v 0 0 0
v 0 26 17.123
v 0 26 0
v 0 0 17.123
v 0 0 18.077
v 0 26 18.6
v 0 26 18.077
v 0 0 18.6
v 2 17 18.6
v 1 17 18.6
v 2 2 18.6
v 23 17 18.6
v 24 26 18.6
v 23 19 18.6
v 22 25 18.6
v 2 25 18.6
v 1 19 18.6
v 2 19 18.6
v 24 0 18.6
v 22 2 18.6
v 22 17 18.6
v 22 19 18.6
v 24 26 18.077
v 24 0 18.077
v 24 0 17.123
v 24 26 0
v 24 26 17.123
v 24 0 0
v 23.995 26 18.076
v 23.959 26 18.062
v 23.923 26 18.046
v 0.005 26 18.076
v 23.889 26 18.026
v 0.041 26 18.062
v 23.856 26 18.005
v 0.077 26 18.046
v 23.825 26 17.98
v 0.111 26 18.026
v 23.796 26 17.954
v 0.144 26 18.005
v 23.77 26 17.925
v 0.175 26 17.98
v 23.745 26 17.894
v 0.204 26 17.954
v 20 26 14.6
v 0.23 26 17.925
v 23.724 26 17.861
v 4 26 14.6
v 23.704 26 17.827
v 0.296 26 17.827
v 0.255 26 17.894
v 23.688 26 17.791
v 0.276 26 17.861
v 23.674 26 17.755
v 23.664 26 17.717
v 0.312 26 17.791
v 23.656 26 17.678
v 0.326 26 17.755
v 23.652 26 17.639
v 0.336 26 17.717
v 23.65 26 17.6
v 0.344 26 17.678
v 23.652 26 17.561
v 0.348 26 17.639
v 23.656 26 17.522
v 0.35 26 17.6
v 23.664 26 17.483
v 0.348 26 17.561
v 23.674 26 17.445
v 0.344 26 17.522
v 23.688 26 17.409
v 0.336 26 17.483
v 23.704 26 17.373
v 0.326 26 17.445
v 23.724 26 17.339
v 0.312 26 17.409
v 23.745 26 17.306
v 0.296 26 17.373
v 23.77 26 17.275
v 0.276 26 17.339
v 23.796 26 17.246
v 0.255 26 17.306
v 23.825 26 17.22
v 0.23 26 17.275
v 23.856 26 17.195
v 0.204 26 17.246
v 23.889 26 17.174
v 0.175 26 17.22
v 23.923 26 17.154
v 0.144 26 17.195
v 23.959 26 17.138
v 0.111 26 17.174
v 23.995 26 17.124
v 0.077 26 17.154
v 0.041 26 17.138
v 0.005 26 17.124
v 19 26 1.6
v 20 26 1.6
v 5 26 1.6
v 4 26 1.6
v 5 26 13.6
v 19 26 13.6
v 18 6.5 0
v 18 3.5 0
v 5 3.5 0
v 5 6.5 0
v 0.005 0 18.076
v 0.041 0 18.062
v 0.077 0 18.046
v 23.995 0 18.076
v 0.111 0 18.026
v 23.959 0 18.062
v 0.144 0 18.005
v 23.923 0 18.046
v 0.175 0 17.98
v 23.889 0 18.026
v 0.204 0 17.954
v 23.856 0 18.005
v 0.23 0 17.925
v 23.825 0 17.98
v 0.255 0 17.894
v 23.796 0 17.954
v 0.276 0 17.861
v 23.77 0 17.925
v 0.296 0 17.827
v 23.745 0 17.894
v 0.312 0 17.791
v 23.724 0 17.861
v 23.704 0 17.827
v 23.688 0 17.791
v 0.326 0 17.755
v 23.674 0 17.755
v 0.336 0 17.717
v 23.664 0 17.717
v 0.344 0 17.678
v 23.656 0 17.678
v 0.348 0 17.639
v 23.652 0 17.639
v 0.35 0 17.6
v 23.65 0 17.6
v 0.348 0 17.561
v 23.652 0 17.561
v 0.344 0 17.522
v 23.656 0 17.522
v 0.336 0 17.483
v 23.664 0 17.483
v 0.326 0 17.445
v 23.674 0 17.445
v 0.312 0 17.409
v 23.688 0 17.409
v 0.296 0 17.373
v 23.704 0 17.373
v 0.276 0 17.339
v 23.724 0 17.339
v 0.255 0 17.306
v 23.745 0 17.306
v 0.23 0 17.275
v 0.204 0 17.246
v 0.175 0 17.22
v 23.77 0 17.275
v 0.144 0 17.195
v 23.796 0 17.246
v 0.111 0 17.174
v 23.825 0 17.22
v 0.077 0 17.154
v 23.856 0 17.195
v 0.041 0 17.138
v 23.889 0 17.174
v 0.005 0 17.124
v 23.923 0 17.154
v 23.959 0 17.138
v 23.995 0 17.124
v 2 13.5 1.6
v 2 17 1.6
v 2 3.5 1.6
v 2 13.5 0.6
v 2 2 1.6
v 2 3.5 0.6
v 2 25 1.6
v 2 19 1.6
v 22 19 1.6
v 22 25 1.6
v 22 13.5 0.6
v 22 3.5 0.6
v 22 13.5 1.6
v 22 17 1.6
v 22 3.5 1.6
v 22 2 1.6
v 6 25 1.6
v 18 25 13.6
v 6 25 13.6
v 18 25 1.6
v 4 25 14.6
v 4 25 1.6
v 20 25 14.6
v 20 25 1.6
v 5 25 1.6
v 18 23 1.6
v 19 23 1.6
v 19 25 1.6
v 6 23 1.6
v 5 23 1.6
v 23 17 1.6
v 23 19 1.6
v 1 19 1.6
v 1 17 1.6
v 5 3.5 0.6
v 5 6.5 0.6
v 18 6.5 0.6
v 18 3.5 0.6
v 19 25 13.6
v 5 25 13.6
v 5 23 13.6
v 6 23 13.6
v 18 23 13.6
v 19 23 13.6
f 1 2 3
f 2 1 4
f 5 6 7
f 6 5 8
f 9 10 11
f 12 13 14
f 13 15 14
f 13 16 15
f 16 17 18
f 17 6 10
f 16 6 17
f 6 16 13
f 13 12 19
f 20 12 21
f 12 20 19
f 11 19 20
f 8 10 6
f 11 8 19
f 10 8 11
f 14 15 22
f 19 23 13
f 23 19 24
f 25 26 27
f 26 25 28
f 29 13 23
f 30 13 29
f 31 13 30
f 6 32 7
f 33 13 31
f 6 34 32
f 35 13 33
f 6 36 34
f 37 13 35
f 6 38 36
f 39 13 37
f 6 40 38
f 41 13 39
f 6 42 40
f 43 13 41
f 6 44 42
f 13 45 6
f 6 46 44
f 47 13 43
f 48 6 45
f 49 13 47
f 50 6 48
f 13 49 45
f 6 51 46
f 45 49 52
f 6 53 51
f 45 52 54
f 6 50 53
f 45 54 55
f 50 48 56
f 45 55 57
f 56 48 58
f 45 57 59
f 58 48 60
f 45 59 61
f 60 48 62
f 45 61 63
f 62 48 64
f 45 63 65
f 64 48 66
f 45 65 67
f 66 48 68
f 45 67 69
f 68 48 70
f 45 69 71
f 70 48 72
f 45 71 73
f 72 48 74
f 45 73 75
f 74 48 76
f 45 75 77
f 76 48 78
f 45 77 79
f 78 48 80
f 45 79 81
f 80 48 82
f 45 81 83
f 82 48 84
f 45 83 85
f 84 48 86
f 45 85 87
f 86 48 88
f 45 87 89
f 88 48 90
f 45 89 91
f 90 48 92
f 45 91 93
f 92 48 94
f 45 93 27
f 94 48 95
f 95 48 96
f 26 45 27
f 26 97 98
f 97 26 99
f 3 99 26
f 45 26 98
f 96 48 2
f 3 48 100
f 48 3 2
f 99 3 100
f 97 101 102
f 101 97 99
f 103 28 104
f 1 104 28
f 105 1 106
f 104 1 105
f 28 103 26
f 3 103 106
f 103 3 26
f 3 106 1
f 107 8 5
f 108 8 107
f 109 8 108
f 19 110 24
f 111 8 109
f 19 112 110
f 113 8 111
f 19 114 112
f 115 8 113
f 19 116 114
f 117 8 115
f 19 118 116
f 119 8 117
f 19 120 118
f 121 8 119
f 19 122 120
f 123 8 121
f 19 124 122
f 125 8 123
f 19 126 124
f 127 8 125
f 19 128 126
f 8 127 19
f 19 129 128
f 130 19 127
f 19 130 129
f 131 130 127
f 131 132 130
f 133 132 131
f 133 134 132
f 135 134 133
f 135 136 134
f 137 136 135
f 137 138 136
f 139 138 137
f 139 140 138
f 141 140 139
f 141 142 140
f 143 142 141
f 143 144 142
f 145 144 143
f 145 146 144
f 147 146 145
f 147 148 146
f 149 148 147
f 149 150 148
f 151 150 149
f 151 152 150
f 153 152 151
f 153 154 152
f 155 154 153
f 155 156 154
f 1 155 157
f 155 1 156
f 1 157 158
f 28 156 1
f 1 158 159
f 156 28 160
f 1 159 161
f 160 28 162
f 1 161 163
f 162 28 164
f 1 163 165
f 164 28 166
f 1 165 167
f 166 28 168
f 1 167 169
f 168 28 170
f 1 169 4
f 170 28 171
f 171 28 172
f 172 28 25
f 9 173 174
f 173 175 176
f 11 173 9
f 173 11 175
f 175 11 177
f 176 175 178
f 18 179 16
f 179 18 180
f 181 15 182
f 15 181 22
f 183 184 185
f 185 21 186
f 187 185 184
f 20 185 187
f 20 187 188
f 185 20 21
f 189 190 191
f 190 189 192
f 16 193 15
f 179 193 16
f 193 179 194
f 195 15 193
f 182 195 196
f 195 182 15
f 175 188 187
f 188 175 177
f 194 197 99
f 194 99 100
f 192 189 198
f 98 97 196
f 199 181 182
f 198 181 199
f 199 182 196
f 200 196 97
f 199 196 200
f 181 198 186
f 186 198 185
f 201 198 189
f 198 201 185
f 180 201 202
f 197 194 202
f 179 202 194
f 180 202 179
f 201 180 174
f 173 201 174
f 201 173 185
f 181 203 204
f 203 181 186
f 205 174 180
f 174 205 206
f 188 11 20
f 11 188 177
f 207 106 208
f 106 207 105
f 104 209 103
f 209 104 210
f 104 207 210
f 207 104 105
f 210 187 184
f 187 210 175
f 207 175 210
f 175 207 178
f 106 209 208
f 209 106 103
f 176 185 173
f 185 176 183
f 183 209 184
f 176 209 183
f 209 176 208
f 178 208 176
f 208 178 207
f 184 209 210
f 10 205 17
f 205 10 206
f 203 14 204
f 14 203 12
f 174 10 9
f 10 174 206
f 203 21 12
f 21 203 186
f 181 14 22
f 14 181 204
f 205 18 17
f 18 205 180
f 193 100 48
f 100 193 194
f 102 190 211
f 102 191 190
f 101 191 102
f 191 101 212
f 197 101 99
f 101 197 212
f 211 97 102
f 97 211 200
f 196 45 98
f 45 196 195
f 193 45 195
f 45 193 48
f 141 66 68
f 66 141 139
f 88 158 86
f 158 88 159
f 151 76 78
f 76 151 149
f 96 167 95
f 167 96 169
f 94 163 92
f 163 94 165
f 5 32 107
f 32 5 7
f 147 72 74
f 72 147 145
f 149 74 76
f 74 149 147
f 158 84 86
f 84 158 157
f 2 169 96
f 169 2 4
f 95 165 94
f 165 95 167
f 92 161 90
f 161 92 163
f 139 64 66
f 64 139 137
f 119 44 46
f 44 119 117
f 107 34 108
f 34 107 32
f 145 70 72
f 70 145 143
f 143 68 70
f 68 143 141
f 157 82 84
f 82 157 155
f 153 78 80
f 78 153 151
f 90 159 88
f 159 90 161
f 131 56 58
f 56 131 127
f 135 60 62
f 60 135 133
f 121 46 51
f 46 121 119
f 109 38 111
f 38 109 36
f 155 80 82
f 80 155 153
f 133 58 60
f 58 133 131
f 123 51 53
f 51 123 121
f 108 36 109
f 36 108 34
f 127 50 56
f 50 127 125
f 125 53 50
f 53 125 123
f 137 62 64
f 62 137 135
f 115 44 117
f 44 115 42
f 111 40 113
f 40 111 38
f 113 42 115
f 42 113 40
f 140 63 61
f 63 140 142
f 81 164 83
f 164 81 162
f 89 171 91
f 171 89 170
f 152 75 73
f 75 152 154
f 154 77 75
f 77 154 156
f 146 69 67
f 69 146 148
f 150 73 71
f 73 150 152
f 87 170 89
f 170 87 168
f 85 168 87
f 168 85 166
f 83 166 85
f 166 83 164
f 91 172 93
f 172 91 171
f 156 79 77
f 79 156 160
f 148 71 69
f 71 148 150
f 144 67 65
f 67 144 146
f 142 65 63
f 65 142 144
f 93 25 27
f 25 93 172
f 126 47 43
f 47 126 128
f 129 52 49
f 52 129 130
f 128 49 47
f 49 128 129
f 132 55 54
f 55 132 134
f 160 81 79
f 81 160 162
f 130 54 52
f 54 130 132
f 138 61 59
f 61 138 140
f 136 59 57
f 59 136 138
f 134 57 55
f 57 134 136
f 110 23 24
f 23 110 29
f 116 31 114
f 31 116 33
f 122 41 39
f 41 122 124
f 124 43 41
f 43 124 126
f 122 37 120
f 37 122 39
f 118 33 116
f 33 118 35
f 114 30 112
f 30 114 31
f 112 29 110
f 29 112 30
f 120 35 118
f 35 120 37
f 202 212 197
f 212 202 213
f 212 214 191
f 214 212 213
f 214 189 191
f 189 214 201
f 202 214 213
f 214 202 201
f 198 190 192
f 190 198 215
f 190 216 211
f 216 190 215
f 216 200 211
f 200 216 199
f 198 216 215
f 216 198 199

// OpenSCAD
$fn = 80;
extra = 0.01;
case();
module case()
{
    difference() 
    {
        cube([20+4,22+4,14.6+4]);

        translate([2,2,1.6]) 
        cube([20,23,19+4]);

        translate([1+4,2+1.5,-extra]) 
        cube([13,3,4]);
        translate([2,2+1.5,0.6]) 
        cube([20,10,4]);

        translate([1,2+4.5+10.5,1.6]) 
        cube([22,2,19+4]);


        translate([2+6,2+6.5+10.5,1.6+5]) 
        cube([5,6,5]);


        translate([4,24,1.6]) 
        cube([1,2,13-1]);

        translate([19,24,1.6]) 
        cube([1,2,13-1]);

        #translate([4,25,13.6]) 
        cube([16,2,1]);


        translate([-0.15,0,14.6+4-1]) 
        rotate([-90,0,0]) 
        cylinder(h = 23+4, d=1);

        translate([20+4+0.15,0,14.6+4-1]) 
        rotate([-90,0,0]) 
        cylinder(h = 23+4, d=1);
    }

        translate([5,23,0]) 
        cube([1,2,14.6-1]);

        translate([18,23,0]) 
        cube([1,2,14.6-1]);

        // hull()
        // {
        // #translate([5,25-0.5,14.6+4-extra]) 
        // cube([14,0.5,extra]);
        // #translate([5,25-0.4,2-extra]) 
        // cube([14,0.4,extra]);
        // }
}

// translate([0,0,25]) 
// lid();
module lid()
{
    difference() 
    {
       
        translate([-1.25,0,0]) 
        cube([20+4+2+0.5,23+4,3]);

        translate([-0.25,-extra,-extra]) 
        cube([20+4+0.5,22+4,2]);
    }

    translate([-0.4,0,1]) 
    rotate([-90,0,0]) 
    cylinder(h = 23+4, d=1);

    translate([20+4+0.4,0,1]) 
    rotate([-90,0,0]) 
    cylinder(h = 23+4, d=1);
}
